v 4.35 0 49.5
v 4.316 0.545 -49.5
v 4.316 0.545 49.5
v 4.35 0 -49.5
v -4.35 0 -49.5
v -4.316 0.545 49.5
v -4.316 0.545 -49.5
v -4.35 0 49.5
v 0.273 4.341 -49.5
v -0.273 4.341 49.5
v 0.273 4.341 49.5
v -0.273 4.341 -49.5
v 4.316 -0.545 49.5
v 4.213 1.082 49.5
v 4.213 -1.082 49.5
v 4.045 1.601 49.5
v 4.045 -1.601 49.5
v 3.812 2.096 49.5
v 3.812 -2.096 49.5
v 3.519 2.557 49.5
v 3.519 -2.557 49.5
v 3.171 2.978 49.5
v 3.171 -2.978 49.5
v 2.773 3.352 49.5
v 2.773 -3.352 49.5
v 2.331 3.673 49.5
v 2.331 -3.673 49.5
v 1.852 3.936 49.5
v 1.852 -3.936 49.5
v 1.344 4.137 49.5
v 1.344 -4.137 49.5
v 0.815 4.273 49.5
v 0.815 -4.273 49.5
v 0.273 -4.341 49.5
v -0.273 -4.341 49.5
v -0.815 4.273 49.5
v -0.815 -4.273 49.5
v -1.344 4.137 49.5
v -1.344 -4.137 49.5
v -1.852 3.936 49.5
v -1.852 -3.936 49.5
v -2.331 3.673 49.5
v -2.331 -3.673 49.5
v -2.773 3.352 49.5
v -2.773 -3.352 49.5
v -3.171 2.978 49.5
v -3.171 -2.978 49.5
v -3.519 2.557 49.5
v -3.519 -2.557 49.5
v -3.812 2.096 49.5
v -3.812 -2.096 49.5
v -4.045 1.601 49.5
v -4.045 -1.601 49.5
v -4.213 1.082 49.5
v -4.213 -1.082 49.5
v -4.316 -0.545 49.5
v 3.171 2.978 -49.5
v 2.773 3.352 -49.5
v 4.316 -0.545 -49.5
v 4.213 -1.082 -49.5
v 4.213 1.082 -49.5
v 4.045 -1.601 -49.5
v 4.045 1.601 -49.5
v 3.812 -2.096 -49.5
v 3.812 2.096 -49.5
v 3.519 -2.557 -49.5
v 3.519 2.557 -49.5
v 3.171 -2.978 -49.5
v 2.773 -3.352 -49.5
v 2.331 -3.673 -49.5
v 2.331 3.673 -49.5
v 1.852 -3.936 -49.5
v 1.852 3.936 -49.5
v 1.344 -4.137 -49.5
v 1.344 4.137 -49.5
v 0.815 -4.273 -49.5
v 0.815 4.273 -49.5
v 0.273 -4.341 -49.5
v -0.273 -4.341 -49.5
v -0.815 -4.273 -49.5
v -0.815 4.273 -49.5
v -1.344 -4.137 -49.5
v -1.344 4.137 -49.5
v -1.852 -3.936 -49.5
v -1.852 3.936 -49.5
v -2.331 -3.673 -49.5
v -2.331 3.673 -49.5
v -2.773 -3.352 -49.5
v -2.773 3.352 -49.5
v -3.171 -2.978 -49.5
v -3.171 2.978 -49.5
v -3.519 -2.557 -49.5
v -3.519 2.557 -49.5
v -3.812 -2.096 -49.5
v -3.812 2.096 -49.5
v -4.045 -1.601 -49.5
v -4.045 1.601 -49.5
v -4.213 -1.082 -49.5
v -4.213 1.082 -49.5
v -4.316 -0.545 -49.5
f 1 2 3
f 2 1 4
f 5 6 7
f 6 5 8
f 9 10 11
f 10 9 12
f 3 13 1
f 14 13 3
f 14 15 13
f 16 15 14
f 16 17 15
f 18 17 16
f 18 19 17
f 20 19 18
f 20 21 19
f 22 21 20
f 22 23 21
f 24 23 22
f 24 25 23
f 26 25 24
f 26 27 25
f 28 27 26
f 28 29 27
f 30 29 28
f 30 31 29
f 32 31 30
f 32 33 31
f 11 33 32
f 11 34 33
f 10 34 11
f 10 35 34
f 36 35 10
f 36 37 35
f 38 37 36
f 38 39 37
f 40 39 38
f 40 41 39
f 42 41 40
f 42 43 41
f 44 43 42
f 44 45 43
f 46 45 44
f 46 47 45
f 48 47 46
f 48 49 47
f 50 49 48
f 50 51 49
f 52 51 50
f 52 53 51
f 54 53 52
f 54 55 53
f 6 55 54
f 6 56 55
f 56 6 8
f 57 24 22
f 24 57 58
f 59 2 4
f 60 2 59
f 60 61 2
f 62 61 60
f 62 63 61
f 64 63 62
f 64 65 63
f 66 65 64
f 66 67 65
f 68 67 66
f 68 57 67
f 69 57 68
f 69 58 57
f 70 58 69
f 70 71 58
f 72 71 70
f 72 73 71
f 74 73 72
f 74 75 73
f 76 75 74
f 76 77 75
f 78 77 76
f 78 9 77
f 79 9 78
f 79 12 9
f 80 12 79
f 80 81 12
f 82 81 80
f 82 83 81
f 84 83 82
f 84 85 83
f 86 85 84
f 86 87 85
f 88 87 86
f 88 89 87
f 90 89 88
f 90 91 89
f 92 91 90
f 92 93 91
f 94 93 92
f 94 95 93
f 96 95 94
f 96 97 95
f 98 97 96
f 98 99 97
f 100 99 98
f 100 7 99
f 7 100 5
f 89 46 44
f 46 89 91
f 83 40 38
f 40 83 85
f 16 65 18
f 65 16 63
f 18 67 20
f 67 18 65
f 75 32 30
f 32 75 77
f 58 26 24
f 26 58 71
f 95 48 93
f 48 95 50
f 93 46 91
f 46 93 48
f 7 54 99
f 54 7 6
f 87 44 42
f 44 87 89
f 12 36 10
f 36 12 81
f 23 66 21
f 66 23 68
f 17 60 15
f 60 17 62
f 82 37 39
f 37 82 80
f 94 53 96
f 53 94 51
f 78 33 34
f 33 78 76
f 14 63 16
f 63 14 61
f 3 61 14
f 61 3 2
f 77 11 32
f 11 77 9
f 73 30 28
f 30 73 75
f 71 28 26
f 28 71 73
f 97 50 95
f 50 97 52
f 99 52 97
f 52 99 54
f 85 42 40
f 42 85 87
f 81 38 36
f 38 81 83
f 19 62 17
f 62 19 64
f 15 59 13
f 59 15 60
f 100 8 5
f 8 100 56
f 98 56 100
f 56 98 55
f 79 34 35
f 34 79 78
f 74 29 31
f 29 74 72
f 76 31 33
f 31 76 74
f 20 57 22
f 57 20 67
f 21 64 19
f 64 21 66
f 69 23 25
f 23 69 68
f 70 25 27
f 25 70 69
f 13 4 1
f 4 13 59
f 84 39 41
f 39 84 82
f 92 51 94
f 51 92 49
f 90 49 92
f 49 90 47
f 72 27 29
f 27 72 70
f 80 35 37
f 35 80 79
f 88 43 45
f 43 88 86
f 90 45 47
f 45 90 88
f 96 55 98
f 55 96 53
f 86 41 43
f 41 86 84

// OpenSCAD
$fn = 50;


difference() {
	union() {
		translate(v = [0, 0, -49.5000000000]) {
			cylinder(h = 99, r = 4.3500000000);
		}
	}
	union() {
		translate(v = [0, 0, -100.0000000000]) {
			cylinder(h = 200, r = 0);
		}
	}
}
